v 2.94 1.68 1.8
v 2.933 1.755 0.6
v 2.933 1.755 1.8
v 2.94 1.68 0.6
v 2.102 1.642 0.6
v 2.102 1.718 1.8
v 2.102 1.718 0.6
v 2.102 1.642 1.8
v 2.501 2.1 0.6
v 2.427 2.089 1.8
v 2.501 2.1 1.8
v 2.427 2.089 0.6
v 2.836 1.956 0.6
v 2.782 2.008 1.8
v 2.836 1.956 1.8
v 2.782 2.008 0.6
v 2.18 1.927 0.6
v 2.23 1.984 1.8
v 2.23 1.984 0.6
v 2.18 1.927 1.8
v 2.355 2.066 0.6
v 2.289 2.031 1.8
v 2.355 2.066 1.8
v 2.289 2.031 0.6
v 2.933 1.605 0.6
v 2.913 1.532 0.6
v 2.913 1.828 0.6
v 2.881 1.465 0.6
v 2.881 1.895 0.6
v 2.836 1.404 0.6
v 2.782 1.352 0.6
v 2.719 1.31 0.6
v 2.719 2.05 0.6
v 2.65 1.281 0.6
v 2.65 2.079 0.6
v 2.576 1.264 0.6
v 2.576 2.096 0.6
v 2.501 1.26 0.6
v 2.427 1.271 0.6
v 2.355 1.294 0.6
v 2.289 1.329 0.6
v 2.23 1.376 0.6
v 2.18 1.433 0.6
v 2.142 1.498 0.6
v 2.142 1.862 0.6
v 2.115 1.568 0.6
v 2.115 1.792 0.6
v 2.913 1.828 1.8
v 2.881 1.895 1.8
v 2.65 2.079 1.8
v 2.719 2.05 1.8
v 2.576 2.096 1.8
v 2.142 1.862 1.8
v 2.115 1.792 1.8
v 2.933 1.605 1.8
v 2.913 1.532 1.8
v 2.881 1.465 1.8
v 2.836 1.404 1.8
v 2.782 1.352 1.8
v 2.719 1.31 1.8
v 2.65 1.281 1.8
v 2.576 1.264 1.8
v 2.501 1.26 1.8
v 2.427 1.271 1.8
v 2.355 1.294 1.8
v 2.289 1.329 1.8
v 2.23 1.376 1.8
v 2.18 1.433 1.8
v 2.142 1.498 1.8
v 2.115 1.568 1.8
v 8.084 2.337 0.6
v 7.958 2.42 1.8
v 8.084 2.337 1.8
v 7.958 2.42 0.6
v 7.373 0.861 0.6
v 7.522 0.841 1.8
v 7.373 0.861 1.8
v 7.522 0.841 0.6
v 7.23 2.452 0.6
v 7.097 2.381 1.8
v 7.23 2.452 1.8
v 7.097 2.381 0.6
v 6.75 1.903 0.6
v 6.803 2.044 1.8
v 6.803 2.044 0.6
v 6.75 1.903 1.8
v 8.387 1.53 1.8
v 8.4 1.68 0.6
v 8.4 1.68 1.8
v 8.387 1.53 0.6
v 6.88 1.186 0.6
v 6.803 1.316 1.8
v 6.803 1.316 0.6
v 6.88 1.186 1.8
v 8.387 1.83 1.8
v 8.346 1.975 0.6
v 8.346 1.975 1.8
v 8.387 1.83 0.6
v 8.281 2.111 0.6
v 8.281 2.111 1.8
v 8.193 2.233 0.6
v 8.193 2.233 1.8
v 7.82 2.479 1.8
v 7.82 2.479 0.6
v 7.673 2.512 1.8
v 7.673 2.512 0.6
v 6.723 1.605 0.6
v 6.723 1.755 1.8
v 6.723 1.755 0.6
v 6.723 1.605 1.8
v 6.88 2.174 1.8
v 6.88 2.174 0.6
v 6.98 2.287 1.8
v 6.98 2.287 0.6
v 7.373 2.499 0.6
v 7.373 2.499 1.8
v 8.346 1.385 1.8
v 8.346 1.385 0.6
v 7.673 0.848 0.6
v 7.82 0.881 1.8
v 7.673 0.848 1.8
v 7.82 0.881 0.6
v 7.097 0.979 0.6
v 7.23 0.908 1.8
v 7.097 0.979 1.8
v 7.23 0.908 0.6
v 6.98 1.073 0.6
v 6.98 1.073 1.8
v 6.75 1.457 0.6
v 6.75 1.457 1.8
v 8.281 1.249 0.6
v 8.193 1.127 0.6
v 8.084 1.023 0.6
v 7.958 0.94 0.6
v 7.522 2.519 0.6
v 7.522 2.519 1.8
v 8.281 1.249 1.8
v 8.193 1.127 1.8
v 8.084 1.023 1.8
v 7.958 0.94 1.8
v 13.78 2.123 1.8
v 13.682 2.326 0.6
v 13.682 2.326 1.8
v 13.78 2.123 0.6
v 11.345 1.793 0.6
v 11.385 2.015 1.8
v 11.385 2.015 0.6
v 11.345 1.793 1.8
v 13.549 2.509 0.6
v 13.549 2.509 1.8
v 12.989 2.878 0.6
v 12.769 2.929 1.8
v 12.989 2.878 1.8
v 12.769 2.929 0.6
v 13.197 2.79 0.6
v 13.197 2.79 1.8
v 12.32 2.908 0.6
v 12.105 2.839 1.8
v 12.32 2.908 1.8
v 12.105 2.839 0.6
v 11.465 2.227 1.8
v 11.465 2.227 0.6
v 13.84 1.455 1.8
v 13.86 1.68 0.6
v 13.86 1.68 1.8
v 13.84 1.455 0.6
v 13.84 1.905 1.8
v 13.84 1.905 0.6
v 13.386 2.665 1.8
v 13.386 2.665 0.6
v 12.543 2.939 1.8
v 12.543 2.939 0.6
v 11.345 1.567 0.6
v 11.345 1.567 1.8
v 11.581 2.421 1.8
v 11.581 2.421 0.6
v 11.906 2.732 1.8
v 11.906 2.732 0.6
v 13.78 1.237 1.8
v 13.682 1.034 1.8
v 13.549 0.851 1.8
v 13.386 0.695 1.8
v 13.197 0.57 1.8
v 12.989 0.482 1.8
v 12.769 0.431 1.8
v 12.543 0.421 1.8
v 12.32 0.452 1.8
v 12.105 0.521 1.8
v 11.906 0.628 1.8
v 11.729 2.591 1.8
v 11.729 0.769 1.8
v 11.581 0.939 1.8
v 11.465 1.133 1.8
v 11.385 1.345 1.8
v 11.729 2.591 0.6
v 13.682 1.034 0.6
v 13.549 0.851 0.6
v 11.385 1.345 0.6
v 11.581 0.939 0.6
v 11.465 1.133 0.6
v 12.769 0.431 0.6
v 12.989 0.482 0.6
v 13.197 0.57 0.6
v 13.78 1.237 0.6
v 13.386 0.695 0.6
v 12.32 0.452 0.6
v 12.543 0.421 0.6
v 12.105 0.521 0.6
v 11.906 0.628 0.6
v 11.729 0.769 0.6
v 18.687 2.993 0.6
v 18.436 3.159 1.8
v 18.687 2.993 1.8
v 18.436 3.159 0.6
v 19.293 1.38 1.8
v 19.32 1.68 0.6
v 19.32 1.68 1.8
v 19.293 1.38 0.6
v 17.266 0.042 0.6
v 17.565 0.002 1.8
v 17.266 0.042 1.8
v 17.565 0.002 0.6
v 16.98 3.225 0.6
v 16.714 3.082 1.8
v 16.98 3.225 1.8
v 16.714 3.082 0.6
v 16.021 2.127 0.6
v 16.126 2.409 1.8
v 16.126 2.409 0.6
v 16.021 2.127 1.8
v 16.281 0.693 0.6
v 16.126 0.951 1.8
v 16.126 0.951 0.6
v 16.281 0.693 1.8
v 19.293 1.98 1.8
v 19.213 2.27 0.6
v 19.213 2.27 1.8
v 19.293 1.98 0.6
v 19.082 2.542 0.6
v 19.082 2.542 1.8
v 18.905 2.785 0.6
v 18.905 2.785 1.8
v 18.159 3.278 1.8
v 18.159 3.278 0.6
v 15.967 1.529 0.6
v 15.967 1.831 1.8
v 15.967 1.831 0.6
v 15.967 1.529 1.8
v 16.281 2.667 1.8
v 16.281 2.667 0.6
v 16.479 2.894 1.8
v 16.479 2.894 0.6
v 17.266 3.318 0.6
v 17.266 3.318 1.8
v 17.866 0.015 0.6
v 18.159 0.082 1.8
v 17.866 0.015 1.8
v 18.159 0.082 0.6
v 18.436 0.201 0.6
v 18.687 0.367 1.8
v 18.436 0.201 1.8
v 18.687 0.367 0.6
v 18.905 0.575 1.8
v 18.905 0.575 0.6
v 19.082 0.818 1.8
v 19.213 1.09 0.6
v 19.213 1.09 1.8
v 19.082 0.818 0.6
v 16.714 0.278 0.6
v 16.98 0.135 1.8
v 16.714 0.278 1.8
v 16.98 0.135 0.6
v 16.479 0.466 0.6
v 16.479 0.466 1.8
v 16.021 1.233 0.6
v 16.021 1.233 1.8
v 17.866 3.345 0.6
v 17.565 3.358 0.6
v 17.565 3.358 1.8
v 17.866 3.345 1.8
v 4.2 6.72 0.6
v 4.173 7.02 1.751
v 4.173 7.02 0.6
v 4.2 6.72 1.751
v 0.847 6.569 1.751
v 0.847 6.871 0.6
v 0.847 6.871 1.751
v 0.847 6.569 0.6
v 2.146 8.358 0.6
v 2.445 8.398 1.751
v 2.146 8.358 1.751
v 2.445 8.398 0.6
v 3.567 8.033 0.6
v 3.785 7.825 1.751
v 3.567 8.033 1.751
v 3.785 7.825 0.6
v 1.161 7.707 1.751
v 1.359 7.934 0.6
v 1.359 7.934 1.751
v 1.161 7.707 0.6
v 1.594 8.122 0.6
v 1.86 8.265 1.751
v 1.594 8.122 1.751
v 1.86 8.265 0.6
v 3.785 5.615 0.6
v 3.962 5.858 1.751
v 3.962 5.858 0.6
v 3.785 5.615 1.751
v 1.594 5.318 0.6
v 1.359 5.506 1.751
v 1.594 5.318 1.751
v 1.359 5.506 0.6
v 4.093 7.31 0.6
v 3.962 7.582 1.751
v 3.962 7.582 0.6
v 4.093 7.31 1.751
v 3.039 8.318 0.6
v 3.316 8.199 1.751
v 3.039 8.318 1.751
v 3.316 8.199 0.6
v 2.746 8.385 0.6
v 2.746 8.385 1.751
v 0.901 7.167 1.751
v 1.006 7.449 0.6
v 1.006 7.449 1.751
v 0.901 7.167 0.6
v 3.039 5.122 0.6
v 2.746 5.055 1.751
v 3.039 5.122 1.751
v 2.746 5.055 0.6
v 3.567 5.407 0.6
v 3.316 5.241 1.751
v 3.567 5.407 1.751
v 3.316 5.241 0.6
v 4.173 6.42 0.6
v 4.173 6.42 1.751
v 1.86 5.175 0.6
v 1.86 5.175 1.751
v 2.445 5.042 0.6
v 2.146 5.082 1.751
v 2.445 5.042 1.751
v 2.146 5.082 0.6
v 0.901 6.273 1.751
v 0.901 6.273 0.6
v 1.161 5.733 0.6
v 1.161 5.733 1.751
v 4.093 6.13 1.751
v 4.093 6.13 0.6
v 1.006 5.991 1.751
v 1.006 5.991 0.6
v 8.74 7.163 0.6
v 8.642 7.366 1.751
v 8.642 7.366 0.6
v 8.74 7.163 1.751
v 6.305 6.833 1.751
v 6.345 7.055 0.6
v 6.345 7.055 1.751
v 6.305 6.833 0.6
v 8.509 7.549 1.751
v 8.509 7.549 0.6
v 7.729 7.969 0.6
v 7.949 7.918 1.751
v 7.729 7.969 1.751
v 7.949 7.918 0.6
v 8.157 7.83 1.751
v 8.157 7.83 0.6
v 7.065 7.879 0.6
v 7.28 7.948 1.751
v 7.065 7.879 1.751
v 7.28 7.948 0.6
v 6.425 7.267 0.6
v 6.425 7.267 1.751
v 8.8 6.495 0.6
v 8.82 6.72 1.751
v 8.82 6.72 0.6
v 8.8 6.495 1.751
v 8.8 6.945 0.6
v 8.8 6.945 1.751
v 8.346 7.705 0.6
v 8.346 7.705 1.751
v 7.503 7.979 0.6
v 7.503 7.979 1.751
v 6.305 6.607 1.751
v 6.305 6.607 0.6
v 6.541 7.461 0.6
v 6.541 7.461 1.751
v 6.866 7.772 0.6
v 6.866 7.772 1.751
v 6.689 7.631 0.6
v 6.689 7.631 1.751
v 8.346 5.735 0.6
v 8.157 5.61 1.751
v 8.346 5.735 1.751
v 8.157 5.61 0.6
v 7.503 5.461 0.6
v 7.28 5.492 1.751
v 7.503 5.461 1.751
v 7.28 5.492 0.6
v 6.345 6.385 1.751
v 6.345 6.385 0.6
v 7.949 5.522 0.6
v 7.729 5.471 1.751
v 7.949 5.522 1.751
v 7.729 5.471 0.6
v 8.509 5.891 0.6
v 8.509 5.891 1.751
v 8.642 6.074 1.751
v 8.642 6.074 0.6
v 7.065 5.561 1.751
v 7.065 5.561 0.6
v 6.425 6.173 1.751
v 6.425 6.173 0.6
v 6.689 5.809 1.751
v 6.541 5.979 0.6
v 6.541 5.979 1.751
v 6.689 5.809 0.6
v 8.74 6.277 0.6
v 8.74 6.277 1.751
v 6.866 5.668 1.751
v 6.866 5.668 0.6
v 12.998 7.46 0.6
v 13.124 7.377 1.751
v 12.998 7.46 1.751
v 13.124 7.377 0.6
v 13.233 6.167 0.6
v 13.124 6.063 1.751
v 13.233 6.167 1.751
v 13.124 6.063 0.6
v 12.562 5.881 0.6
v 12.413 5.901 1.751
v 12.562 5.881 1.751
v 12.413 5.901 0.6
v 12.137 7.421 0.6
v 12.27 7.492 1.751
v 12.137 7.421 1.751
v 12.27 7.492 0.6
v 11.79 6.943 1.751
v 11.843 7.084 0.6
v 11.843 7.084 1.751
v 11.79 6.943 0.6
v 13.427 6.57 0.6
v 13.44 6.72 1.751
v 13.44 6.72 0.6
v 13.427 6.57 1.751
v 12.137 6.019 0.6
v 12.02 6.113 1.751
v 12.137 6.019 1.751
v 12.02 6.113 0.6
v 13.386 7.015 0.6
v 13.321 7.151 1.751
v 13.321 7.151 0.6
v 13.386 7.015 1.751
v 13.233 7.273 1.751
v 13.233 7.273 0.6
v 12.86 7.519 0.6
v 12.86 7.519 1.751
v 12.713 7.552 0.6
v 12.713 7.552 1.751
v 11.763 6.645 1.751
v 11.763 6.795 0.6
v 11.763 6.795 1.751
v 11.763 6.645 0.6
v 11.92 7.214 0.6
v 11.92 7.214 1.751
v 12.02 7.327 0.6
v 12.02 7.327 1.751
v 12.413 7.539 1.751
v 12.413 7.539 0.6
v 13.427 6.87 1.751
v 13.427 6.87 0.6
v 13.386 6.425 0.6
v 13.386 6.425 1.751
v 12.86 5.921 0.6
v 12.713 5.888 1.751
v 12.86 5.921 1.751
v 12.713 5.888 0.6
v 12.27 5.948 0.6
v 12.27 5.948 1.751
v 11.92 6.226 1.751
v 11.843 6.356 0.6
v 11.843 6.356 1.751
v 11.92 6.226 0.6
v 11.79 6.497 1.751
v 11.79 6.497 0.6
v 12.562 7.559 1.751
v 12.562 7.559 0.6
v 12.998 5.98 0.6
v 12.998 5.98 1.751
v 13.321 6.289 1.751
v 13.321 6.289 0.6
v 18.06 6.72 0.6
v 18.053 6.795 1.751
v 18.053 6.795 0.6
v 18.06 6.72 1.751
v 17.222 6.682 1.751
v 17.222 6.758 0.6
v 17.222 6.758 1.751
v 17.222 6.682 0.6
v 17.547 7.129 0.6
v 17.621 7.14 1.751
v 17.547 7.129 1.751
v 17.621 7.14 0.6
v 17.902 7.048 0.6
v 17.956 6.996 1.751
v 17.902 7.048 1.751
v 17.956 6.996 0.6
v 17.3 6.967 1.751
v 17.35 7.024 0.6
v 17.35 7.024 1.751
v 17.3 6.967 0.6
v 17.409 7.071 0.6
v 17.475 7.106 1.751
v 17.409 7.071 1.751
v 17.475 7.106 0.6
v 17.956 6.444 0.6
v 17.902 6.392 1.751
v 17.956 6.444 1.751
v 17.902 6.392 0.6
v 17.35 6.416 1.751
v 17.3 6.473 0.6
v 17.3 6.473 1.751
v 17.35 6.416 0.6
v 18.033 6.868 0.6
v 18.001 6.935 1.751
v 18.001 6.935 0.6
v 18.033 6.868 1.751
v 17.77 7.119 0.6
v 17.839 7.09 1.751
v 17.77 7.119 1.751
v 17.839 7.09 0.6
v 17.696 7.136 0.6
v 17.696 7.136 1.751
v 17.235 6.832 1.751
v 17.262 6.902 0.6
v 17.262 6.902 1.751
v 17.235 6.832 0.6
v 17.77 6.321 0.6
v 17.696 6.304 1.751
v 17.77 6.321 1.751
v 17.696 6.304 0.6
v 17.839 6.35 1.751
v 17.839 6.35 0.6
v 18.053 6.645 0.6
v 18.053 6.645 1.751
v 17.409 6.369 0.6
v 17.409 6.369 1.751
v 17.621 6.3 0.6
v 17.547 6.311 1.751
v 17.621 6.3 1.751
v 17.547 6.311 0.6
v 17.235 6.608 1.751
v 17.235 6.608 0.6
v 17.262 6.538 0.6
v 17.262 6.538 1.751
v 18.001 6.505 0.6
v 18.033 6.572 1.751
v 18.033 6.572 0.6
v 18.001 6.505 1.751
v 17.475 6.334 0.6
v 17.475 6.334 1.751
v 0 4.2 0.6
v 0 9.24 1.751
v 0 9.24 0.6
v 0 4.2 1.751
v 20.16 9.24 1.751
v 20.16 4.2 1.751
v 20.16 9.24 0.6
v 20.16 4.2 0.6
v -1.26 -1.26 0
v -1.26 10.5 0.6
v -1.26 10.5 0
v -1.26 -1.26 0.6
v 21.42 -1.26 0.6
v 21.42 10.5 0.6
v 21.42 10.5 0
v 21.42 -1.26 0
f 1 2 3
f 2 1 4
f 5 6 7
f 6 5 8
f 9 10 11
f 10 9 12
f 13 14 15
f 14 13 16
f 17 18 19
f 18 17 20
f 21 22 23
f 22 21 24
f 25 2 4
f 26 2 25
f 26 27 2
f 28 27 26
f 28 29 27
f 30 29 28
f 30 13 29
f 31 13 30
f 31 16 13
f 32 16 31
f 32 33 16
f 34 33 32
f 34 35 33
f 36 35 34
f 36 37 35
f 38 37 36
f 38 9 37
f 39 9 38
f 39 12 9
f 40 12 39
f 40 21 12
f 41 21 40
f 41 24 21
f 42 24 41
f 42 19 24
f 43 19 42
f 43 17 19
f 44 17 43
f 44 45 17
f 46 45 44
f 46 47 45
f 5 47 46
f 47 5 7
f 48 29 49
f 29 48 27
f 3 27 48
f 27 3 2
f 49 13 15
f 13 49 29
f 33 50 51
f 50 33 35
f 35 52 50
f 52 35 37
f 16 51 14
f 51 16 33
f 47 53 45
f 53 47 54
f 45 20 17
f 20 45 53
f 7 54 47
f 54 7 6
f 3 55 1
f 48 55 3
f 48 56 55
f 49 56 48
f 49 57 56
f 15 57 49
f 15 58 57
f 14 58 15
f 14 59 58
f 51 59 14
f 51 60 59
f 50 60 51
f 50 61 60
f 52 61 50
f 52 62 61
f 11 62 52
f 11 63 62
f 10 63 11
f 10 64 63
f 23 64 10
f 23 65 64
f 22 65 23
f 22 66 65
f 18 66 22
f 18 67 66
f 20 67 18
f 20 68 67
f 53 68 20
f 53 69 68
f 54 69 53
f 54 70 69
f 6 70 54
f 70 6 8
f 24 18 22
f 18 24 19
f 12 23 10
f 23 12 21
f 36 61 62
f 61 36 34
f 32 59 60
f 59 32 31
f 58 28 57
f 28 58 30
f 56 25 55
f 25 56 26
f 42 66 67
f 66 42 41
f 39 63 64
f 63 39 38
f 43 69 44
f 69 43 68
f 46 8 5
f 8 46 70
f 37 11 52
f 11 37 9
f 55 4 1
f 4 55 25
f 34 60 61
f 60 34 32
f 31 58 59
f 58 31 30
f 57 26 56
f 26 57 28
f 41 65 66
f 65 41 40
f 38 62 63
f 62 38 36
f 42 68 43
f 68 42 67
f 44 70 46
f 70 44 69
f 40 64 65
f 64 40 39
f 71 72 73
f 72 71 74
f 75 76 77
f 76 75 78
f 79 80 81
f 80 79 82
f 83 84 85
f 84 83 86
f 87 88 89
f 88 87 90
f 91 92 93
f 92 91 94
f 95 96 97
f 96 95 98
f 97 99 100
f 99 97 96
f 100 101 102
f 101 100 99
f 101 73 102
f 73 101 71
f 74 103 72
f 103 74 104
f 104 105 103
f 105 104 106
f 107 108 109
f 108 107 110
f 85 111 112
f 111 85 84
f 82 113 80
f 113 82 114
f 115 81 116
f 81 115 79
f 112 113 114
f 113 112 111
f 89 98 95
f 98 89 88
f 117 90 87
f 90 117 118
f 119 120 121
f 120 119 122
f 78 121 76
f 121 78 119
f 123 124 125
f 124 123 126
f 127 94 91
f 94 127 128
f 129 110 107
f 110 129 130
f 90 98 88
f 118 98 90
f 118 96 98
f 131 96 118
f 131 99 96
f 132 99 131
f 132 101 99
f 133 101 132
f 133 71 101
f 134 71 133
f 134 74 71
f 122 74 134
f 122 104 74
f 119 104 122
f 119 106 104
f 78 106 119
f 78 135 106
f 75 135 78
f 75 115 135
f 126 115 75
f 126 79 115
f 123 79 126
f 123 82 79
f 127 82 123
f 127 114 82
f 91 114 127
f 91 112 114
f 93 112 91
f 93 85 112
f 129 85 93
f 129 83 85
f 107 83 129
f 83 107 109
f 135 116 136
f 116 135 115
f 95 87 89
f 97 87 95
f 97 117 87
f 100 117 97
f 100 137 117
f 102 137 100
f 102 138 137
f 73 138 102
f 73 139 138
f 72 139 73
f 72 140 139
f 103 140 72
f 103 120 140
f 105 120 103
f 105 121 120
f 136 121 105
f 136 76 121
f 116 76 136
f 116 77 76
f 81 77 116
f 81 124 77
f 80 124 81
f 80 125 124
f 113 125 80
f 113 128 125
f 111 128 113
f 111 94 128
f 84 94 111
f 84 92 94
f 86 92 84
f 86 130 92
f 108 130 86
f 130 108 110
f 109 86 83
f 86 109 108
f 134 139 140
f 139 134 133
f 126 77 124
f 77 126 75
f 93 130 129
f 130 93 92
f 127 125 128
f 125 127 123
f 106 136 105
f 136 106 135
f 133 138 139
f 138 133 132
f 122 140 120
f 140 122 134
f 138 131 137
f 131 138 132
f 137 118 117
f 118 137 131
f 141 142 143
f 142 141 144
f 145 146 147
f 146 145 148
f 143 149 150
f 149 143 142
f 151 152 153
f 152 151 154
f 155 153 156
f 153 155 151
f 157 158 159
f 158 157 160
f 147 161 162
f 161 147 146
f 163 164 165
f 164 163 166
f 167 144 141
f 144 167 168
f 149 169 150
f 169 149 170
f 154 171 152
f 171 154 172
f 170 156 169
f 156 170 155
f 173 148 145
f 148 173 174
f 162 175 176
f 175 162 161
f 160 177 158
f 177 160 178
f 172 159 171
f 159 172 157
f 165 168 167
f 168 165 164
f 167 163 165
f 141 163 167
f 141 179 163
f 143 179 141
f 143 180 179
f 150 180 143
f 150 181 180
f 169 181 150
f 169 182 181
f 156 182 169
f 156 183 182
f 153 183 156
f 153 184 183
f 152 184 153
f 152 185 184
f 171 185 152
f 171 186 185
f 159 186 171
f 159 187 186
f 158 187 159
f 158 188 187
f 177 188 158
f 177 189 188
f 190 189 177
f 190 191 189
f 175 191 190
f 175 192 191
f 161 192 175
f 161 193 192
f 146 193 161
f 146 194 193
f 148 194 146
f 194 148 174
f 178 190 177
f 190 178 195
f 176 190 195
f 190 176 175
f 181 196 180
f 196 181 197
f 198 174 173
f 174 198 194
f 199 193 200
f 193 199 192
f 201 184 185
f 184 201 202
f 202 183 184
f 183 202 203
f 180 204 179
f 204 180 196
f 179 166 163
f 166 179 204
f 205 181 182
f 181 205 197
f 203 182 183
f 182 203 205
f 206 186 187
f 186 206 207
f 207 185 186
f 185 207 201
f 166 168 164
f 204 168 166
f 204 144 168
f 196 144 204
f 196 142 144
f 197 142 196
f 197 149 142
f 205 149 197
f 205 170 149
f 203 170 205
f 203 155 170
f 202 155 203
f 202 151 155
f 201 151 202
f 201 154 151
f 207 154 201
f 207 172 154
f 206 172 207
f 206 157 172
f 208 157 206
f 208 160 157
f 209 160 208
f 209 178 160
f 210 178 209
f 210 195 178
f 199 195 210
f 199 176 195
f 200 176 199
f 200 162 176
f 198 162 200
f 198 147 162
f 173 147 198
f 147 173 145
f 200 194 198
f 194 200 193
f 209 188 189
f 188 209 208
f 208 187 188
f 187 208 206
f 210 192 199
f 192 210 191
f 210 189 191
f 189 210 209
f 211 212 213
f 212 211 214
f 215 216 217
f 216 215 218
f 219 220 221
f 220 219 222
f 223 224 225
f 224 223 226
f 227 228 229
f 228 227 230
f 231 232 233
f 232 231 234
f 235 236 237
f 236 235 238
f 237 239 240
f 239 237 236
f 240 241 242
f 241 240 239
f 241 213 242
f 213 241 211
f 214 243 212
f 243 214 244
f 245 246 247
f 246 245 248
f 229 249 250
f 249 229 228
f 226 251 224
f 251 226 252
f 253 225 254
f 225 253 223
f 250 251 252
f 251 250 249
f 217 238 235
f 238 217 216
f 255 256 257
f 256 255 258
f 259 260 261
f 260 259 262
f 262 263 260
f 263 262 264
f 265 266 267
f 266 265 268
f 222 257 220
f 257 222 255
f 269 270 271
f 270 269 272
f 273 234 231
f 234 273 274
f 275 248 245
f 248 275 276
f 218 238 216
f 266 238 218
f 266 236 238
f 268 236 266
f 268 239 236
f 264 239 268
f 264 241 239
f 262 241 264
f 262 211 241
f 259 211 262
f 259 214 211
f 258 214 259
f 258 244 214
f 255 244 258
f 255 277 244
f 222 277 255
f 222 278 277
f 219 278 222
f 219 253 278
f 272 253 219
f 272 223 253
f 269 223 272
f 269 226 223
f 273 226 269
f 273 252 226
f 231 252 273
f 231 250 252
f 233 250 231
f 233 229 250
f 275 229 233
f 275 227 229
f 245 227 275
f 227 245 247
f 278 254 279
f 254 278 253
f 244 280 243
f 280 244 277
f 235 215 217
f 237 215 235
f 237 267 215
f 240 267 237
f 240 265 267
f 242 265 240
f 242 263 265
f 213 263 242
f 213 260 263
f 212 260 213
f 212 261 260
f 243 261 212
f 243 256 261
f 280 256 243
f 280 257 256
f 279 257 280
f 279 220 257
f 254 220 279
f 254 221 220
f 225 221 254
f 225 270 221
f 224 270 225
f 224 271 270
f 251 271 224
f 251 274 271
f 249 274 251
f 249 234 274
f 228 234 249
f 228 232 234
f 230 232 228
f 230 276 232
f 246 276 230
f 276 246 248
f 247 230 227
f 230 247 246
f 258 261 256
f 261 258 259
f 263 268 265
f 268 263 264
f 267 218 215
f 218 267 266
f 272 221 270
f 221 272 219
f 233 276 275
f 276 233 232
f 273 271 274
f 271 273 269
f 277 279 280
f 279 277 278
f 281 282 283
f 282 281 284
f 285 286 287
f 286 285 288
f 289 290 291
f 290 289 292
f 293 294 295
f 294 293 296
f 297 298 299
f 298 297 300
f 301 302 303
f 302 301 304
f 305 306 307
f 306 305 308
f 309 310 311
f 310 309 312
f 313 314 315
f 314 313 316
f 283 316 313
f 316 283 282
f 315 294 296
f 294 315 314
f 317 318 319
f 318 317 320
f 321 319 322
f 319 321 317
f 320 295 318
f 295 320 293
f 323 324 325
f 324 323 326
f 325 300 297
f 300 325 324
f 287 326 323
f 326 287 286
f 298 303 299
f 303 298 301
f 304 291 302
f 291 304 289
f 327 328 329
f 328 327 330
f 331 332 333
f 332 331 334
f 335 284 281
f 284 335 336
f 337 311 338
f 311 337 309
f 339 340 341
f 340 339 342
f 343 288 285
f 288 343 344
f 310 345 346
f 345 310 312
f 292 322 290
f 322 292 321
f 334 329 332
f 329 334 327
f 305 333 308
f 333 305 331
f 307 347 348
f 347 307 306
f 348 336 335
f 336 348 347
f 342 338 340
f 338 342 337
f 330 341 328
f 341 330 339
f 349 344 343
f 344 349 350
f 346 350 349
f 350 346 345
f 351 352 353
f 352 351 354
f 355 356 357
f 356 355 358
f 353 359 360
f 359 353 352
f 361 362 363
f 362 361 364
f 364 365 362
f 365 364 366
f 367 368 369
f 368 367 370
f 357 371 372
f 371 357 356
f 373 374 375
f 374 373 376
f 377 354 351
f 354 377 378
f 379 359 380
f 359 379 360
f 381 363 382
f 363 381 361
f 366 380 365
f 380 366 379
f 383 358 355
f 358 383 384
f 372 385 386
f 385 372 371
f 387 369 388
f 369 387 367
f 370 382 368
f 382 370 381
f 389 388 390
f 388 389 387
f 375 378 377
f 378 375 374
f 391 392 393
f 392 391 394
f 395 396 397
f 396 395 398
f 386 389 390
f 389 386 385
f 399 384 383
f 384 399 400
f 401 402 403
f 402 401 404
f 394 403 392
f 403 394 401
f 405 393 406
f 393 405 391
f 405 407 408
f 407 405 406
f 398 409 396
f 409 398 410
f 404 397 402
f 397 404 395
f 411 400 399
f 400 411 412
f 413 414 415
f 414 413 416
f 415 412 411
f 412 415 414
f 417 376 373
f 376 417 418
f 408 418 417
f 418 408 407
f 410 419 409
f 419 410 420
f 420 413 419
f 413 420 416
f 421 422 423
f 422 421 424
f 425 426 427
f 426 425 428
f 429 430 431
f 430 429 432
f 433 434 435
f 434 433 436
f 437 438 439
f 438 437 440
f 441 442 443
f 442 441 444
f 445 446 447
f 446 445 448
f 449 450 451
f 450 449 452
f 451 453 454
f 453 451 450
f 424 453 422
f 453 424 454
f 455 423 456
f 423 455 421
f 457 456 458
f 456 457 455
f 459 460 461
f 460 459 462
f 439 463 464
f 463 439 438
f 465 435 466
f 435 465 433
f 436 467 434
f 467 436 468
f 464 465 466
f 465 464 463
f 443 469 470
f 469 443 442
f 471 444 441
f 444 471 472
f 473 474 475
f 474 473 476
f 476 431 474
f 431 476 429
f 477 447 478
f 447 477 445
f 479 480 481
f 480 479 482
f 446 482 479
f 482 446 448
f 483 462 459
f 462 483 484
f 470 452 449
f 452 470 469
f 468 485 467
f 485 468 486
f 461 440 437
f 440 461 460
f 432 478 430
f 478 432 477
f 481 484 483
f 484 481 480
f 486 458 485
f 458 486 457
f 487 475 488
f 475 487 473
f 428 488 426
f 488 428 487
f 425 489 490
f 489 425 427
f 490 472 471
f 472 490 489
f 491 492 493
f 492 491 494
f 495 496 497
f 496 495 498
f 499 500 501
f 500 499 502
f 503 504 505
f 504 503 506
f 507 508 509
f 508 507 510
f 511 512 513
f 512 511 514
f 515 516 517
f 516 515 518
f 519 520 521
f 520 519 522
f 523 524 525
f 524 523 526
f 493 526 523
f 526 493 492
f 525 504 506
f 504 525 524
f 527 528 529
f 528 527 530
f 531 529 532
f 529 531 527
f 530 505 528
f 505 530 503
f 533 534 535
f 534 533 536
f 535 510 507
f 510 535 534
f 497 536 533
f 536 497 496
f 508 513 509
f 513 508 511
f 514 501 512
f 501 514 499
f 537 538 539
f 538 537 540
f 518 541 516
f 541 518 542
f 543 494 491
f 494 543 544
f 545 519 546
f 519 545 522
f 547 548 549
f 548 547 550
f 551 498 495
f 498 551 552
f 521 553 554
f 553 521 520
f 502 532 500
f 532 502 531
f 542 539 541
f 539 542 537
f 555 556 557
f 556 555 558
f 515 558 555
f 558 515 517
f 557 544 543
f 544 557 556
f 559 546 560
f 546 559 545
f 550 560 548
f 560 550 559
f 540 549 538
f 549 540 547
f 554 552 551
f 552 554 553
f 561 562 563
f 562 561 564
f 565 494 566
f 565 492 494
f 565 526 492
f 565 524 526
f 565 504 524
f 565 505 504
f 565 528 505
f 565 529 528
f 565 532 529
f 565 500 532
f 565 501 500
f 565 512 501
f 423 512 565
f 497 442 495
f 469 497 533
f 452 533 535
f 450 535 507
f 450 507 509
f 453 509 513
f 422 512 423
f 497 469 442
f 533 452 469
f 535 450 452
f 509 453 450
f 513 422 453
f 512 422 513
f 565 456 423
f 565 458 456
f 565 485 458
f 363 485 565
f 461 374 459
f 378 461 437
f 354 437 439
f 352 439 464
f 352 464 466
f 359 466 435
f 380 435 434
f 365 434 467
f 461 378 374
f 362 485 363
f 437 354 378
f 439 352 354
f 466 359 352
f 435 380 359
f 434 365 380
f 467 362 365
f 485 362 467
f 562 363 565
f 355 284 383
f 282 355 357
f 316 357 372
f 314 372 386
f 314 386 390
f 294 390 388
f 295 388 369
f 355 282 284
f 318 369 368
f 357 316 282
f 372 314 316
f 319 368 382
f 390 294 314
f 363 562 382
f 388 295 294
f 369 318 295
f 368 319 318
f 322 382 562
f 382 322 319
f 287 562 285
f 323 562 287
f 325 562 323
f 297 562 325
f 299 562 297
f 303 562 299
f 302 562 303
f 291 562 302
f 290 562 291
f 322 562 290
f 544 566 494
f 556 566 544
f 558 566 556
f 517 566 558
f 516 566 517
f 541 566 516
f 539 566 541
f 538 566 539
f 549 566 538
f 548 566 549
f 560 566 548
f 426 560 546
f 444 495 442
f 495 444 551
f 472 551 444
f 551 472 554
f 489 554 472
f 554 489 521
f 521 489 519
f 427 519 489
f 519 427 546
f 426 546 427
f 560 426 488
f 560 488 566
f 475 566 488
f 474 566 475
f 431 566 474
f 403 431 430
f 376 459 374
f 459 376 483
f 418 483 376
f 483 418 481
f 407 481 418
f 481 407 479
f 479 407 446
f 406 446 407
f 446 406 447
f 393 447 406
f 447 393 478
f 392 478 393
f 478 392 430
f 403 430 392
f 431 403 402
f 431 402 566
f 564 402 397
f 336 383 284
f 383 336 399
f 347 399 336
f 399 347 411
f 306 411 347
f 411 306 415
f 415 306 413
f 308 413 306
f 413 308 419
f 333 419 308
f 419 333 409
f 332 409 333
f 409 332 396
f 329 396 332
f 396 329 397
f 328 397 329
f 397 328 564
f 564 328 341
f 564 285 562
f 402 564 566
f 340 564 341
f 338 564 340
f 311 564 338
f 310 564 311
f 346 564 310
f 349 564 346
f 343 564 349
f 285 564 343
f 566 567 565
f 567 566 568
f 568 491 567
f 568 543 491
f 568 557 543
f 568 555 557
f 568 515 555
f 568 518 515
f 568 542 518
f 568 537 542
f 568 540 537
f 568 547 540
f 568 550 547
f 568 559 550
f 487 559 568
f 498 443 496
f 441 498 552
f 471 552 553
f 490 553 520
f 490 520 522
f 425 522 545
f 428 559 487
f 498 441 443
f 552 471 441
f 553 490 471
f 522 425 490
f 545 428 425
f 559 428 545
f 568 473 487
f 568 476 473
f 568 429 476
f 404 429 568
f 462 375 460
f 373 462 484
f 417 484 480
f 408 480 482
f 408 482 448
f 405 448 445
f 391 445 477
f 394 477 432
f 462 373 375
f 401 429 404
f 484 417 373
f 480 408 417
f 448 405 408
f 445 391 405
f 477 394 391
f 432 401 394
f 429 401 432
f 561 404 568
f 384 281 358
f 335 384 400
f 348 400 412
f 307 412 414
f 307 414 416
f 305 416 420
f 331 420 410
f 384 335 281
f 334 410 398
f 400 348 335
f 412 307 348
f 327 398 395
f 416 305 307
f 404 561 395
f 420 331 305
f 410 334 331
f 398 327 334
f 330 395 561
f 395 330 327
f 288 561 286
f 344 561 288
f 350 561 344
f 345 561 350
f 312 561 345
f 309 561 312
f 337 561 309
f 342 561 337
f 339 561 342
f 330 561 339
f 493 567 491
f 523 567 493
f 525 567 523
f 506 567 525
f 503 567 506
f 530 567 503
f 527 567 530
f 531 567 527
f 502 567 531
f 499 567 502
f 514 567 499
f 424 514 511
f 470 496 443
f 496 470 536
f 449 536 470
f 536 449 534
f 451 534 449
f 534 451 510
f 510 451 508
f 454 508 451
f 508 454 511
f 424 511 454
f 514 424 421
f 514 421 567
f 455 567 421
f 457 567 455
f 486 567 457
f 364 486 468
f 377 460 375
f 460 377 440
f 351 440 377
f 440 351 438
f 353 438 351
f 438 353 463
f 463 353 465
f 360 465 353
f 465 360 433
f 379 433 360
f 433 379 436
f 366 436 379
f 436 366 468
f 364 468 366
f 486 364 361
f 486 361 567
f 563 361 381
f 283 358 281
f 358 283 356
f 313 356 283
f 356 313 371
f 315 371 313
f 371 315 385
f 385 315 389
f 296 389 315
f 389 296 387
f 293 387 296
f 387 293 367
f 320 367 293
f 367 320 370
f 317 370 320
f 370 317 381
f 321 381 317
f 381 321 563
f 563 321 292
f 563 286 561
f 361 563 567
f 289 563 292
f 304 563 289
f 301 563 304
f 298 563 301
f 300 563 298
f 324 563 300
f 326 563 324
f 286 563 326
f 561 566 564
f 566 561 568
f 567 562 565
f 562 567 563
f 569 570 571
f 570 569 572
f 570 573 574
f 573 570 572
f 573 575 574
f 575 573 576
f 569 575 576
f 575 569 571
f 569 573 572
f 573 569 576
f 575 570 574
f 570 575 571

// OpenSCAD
include <3d-printer-testing-suite.scad>

/* [Hidden] */
test_type = "peg_hole";
